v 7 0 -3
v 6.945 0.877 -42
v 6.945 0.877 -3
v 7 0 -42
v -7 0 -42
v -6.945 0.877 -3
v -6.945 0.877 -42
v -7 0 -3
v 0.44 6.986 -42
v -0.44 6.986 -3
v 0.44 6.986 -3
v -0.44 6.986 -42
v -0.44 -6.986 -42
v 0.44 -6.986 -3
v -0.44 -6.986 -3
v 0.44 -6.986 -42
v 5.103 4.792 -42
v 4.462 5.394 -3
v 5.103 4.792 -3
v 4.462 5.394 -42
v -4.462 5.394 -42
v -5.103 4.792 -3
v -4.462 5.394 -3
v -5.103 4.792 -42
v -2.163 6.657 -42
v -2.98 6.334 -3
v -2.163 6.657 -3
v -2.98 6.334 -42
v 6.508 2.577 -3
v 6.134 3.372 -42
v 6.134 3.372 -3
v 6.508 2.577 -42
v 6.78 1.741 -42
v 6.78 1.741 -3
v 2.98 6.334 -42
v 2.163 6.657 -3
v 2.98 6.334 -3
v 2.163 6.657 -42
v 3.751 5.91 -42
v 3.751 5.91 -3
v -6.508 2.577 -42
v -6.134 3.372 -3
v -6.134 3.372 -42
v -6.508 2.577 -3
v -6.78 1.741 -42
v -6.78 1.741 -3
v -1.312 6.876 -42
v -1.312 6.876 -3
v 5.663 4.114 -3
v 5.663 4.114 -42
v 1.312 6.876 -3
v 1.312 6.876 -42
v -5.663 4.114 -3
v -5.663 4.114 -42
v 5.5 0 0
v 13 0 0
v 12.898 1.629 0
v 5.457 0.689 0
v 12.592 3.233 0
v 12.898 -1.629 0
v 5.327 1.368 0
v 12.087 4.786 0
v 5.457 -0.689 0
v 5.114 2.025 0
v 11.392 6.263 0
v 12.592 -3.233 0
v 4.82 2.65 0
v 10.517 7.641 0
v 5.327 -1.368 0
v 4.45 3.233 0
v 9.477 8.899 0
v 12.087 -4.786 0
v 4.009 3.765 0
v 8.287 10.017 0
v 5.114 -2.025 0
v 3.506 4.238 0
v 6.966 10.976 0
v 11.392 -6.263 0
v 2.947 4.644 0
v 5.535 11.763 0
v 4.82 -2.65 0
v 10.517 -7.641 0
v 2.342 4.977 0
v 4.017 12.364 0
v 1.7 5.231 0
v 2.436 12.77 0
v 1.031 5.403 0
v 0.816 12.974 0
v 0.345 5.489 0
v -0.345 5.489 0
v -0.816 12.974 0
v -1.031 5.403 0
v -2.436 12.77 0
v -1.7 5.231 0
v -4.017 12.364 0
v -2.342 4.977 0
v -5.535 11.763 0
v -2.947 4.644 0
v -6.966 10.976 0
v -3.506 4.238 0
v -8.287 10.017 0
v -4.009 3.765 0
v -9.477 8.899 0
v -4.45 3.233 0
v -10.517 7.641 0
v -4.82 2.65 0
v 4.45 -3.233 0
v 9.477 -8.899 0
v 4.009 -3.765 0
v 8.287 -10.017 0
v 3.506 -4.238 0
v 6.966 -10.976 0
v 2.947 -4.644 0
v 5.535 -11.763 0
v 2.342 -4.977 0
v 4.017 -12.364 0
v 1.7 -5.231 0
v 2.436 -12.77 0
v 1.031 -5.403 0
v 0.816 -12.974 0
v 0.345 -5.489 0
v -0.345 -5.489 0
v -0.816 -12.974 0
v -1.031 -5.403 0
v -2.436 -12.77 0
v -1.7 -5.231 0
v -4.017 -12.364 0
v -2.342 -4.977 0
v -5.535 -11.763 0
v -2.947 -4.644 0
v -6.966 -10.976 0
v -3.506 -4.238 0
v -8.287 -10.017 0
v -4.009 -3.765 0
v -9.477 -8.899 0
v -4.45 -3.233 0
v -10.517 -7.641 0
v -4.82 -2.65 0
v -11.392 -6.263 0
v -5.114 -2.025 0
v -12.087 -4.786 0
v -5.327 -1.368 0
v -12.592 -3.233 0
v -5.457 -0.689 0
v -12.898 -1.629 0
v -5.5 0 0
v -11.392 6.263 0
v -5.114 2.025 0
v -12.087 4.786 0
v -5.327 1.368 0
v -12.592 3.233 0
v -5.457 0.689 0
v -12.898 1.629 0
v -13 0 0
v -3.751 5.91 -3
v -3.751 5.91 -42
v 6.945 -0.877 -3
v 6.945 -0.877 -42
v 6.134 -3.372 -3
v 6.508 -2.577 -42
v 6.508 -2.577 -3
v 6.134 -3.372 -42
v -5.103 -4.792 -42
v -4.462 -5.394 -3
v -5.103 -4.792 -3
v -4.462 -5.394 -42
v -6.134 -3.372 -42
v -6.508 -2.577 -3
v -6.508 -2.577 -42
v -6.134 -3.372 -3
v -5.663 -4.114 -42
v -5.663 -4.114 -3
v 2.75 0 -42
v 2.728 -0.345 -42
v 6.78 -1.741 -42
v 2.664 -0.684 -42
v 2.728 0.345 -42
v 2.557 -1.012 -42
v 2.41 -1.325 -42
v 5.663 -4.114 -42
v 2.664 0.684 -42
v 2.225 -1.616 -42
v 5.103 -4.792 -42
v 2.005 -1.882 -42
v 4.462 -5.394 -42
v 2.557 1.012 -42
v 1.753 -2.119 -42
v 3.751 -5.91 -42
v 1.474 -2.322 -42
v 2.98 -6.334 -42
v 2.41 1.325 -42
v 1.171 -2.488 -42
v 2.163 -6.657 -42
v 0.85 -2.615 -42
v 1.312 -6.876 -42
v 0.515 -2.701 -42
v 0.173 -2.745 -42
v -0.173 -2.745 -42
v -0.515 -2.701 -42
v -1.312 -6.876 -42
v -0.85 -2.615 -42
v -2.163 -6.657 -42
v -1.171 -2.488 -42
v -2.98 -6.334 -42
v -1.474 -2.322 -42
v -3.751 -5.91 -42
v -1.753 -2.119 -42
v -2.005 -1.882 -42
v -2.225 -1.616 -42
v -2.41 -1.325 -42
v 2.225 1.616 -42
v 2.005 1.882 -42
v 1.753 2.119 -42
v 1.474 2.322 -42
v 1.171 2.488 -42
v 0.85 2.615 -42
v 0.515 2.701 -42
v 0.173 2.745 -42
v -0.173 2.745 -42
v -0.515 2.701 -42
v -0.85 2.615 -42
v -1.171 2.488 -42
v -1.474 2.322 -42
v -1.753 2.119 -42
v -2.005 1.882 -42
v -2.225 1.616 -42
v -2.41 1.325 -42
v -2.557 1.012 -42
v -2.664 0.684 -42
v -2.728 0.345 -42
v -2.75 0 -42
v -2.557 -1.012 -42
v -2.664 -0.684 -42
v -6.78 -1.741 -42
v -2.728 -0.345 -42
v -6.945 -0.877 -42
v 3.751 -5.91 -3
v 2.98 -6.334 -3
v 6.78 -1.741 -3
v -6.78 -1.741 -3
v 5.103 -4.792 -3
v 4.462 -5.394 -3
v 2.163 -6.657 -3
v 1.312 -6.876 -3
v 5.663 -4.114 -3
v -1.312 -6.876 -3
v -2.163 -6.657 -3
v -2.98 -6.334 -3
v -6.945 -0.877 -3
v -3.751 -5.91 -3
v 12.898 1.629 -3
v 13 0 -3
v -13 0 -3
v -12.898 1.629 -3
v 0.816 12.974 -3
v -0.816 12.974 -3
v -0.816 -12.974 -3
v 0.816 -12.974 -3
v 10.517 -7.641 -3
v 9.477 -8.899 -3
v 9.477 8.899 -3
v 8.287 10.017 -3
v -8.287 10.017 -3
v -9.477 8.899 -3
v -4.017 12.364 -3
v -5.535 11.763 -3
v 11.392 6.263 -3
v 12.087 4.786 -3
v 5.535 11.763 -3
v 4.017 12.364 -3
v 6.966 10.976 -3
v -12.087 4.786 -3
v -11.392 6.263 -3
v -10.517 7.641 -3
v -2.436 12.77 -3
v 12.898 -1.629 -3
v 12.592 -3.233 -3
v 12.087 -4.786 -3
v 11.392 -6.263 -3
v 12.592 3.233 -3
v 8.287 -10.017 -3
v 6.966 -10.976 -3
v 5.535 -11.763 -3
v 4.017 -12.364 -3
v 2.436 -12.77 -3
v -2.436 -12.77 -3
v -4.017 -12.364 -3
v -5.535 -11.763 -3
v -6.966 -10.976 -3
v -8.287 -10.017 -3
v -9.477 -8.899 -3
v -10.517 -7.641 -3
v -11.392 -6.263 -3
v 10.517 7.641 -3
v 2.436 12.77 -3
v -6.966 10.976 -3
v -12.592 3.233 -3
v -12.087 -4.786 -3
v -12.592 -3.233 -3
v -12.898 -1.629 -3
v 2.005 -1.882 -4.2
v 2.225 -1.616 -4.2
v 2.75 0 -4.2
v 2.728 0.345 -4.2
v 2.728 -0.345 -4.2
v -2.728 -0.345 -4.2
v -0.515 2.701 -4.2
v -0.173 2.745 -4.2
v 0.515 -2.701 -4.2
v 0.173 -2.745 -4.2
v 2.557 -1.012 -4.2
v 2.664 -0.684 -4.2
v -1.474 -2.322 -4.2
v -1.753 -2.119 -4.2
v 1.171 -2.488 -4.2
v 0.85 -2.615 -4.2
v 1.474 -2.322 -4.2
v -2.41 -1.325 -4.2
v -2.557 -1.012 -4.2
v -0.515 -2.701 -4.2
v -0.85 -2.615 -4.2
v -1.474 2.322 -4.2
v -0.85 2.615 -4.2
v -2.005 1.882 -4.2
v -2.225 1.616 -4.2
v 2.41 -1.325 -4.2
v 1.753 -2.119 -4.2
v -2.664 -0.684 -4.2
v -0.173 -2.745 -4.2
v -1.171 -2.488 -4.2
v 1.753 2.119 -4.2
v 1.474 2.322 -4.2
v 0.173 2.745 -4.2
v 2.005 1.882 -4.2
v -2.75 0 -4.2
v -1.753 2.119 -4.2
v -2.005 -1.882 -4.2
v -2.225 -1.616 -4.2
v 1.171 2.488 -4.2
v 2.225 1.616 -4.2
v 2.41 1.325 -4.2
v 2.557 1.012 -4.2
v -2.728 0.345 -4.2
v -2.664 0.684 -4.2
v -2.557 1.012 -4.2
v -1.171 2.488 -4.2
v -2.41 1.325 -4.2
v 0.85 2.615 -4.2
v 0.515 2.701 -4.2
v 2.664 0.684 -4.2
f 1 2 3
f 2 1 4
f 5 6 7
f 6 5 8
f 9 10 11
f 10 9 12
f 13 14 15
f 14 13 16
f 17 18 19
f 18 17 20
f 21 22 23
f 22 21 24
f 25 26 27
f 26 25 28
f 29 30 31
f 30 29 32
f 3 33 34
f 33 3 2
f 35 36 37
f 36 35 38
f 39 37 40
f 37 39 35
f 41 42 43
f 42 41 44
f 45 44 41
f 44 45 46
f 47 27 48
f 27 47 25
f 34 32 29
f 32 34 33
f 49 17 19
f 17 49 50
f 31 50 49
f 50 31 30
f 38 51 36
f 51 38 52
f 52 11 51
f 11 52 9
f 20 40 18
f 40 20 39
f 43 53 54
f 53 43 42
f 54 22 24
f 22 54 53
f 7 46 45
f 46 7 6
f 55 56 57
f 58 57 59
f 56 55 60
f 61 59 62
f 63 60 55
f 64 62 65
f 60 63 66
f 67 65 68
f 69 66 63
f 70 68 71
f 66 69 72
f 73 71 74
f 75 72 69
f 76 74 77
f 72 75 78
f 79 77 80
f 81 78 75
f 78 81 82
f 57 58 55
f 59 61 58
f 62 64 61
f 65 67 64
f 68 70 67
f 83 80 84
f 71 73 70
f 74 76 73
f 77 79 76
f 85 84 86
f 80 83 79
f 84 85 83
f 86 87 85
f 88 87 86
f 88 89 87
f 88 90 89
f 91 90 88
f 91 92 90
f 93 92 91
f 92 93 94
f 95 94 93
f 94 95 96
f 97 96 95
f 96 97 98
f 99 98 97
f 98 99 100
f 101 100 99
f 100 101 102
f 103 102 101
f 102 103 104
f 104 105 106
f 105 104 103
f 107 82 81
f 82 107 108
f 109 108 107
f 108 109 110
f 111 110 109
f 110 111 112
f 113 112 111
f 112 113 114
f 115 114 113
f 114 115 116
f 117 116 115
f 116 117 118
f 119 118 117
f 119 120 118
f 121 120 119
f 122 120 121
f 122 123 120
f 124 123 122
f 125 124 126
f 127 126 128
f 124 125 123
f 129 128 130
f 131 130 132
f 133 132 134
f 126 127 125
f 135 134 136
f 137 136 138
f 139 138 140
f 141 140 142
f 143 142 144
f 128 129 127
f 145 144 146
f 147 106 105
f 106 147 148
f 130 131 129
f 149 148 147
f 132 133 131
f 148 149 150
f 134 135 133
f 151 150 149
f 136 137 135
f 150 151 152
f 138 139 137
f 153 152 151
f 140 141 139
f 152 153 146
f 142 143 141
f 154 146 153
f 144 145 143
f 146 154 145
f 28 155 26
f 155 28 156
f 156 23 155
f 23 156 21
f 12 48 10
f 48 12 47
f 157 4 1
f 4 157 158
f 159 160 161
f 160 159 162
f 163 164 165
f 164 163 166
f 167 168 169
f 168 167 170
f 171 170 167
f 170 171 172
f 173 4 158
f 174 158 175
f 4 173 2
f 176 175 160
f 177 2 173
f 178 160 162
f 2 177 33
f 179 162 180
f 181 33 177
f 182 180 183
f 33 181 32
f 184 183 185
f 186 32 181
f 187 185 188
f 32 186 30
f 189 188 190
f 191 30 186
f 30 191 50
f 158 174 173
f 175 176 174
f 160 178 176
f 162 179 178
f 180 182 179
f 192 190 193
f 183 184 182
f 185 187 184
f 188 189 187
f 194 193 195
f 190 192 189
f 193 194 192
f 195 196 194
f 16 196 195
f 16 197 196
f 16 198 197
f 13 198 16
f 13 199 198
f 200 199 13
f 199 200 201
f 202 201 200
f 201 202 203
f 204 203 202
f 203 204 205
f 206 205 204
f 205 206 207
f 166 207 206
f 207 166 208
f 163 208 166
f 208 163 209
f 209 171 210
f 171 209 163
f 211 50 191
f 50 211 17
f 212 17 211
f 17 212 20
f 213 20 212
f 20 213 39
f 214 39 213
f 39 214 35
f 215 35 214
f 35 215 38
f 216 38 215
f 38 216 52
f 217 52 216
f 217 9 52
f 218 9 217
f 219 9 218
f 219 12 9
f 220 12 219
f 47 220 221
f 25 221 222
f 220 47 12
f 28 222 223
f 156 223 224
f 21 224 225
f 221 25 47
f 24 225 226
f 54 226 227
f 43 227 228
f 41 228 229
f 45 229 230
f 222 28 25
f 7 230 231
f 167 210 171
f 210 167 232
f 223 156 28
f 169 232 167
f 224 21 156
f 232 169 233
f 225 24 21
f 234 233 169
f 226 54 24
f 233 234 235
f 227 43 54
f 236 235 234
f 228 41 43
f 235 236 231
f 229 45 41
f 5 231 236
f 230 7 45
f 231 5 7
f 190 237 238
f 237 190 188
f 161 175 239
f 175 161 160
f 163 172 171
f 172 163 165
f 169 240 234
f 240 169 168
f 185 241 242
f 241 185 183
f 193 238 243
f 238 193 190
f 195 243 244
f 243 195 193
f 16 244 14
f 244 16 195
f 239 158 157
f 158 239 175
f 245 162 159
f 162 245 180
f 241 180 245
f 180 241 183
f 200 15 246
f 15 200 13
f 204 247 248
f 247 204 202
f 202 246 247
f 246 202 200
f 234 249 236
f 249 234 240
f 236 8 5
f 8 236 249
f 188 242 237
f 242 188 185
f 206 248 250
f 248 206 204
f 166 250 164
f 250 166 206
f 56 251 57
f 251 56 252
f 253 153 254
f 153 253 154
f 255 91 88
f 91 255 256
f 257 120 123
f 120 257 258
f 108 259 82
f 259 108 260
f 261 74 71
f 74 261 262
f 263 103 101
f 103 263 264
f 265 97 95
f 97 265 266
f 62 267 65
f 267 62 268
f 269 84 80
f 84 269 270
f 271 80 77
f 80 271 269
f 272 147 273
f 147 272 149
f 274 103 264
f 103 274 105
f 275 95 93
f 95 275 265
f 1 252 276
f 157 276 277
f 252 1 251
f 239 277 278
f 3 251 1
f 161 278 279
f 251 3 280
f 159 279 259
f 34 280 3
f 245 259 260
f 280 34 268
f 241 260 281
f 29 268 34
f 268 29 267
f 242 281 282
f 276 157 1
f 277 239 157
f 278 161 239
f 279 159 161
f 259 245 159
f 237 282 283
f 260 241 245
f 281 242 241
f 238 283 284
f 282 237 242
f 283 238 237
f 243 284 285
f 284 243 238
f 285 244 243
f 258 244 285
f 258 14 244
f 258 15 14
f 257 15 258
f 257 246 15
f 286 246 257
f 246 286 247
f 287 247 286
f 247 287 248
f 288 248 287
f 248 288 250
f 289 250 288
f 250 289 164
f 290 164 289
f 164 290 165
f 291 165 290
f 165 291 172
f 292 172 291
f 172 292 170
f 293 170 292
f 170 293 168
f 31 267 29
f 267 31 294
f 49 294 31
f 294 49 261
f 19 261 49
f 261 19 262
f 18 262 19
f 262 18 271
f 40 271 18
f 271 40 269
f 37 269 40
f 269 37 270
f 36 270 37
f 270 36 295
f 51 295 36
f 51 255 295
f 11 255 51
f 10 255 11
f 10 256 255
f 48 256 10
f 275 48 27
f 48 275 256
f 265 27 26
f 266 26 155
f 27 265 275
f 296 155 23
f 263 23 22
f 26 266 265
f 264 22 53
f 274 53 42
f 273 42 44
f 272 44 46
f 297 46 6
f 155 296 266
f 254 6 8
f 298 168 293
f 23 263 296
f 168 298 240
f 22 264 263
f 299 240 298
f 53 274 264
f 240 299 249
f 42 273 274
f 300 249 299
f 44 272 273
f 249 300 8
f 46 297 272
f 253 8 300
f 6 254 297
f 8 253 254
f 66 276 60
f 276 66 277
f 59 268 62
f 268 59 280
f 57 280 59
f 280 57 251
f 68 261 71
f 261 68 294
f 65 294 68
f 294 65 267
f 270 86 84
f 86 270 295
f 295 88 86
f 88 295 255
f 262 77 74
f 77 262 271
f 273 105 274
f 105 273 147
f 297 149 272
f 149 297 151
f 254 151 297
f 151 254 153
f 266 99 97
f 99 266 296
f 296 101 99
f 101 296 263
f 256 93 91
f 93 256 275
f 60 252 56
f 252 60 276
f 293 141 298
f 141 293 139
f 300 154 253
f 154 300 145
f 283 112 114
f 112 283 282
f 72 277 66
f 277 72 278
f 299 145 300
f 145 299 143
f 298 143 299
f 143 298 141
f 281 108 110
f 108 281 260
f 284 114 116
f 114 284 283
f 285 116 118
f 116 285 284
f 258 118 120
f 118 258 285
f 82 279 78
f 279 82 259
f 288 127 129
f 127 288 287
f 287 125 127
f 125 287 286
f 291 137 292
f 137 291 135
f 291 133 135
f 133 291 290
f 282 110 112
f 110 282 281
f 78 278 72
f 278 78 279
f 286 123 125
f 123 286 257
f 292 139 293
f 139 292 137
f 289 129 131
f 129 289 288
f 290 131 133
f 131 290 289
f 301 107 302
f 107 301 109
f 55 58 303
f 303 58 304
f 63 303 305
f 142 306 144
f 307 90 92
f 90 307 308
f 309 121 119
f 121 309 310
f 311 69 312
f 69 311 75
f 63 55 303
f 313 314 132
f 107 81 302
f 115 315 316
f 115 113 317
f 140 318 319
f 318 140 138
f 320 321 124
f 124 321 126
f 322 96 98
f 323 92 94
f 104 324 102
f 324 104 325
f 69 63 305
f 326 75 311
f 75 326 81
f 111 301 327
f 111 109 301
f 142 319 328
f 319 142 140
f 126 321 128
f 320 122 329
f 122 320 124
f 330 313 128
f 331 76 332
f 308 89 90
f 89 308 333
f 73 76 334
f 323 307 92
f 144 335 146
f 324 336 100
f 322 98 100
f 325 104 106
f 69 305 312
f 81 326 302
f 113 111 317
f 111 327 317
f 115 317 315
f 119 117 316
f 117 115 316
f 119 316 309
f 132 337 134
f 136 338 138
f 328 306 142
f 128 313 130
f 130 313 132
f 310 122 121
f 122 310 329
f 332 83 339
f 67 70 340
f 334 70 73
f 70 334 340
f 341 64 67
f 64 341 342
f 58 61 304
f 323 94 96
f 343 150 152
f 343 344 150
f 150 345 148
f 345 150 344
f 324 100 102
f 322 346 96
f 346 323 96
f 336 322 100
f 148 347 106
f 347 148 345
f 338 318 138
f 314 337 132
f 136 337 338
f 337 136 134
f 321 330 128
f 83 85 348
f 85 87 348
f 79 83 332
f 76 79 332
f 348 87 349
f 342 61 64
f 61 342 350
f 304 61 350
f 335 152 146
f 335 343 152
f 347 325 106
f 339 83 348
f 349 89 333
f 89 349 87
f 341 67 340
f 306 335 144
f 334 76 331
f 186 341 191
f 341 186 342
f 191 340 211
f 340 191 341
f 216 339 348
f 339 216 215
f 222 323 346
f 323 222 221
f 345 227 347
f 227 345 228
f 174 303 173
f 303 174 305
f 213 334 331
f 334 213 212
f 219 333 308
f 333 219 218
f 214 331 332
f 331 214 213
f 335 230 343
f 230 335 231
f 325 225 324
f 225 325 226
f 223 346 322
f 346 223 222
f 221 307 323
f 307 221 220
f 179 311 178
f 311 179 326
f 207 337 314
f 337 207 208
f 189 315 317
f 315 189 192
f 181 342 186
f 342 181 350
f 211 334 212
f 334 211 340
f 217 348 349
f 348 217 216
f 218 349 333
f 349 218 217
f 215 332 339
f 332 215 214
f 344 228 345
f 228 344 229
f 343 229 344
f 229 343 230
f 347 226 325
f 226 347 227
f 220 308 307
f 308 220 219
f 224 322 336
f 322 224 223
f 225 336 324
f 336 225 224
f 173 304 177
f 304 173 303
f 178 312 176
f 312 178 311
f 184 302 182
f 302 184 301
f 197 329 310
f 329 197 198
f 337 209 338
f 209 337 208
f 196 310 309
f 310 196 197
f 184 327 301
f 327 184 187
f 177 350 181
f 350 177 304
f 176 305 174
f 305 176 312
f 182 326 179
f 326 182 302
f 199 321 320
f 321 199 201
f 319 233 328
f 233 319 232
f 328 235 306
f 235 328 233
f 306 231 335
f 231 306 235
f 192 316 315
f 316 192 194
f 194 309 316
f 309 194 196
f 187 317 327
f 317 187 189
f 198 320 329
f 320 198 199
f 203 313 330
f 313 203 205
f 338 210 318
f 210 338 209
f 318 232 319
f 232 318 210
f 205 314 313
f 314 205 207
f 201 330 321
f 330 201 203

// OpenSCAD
$fn = 50;


difference() {
	union() {
		translate(v = [0, 0, -42.0000000000]) {
			cylinder(h = 42, r = 7.0000000000);
		}
		translate(v = [0, 0, -3.0000000000]) {
			cylinder(h = 3, r = 13.0000000000);
		}
	}
	union() {
		translate(v = [0, 0, 0]) {
			rotate(a = [0, 0, 0]) {
				difference() {
					union() {
						#translate(v = [0, 0, -42.0000000000]) {
							cylinder(h = 42, r = 2.2500000000);
						}
						#translate(v = [0, 0, -4.2000000000]) {
							cylinder(h = 4.2000000000, r1 = 2.7500000000, r2 = 5.5000000000);
						}
						#translate(v = [0, 0, -42.0000000000]) {
							cylinder(h = 42, r = 2.7500000000);
						}
						#translate(v = [0, 0, -42.0000000000]) {
							cylinder(h = 42, r = 2.2500000000);
						}
					}
					union();
				}
			}
		}
	}
}
